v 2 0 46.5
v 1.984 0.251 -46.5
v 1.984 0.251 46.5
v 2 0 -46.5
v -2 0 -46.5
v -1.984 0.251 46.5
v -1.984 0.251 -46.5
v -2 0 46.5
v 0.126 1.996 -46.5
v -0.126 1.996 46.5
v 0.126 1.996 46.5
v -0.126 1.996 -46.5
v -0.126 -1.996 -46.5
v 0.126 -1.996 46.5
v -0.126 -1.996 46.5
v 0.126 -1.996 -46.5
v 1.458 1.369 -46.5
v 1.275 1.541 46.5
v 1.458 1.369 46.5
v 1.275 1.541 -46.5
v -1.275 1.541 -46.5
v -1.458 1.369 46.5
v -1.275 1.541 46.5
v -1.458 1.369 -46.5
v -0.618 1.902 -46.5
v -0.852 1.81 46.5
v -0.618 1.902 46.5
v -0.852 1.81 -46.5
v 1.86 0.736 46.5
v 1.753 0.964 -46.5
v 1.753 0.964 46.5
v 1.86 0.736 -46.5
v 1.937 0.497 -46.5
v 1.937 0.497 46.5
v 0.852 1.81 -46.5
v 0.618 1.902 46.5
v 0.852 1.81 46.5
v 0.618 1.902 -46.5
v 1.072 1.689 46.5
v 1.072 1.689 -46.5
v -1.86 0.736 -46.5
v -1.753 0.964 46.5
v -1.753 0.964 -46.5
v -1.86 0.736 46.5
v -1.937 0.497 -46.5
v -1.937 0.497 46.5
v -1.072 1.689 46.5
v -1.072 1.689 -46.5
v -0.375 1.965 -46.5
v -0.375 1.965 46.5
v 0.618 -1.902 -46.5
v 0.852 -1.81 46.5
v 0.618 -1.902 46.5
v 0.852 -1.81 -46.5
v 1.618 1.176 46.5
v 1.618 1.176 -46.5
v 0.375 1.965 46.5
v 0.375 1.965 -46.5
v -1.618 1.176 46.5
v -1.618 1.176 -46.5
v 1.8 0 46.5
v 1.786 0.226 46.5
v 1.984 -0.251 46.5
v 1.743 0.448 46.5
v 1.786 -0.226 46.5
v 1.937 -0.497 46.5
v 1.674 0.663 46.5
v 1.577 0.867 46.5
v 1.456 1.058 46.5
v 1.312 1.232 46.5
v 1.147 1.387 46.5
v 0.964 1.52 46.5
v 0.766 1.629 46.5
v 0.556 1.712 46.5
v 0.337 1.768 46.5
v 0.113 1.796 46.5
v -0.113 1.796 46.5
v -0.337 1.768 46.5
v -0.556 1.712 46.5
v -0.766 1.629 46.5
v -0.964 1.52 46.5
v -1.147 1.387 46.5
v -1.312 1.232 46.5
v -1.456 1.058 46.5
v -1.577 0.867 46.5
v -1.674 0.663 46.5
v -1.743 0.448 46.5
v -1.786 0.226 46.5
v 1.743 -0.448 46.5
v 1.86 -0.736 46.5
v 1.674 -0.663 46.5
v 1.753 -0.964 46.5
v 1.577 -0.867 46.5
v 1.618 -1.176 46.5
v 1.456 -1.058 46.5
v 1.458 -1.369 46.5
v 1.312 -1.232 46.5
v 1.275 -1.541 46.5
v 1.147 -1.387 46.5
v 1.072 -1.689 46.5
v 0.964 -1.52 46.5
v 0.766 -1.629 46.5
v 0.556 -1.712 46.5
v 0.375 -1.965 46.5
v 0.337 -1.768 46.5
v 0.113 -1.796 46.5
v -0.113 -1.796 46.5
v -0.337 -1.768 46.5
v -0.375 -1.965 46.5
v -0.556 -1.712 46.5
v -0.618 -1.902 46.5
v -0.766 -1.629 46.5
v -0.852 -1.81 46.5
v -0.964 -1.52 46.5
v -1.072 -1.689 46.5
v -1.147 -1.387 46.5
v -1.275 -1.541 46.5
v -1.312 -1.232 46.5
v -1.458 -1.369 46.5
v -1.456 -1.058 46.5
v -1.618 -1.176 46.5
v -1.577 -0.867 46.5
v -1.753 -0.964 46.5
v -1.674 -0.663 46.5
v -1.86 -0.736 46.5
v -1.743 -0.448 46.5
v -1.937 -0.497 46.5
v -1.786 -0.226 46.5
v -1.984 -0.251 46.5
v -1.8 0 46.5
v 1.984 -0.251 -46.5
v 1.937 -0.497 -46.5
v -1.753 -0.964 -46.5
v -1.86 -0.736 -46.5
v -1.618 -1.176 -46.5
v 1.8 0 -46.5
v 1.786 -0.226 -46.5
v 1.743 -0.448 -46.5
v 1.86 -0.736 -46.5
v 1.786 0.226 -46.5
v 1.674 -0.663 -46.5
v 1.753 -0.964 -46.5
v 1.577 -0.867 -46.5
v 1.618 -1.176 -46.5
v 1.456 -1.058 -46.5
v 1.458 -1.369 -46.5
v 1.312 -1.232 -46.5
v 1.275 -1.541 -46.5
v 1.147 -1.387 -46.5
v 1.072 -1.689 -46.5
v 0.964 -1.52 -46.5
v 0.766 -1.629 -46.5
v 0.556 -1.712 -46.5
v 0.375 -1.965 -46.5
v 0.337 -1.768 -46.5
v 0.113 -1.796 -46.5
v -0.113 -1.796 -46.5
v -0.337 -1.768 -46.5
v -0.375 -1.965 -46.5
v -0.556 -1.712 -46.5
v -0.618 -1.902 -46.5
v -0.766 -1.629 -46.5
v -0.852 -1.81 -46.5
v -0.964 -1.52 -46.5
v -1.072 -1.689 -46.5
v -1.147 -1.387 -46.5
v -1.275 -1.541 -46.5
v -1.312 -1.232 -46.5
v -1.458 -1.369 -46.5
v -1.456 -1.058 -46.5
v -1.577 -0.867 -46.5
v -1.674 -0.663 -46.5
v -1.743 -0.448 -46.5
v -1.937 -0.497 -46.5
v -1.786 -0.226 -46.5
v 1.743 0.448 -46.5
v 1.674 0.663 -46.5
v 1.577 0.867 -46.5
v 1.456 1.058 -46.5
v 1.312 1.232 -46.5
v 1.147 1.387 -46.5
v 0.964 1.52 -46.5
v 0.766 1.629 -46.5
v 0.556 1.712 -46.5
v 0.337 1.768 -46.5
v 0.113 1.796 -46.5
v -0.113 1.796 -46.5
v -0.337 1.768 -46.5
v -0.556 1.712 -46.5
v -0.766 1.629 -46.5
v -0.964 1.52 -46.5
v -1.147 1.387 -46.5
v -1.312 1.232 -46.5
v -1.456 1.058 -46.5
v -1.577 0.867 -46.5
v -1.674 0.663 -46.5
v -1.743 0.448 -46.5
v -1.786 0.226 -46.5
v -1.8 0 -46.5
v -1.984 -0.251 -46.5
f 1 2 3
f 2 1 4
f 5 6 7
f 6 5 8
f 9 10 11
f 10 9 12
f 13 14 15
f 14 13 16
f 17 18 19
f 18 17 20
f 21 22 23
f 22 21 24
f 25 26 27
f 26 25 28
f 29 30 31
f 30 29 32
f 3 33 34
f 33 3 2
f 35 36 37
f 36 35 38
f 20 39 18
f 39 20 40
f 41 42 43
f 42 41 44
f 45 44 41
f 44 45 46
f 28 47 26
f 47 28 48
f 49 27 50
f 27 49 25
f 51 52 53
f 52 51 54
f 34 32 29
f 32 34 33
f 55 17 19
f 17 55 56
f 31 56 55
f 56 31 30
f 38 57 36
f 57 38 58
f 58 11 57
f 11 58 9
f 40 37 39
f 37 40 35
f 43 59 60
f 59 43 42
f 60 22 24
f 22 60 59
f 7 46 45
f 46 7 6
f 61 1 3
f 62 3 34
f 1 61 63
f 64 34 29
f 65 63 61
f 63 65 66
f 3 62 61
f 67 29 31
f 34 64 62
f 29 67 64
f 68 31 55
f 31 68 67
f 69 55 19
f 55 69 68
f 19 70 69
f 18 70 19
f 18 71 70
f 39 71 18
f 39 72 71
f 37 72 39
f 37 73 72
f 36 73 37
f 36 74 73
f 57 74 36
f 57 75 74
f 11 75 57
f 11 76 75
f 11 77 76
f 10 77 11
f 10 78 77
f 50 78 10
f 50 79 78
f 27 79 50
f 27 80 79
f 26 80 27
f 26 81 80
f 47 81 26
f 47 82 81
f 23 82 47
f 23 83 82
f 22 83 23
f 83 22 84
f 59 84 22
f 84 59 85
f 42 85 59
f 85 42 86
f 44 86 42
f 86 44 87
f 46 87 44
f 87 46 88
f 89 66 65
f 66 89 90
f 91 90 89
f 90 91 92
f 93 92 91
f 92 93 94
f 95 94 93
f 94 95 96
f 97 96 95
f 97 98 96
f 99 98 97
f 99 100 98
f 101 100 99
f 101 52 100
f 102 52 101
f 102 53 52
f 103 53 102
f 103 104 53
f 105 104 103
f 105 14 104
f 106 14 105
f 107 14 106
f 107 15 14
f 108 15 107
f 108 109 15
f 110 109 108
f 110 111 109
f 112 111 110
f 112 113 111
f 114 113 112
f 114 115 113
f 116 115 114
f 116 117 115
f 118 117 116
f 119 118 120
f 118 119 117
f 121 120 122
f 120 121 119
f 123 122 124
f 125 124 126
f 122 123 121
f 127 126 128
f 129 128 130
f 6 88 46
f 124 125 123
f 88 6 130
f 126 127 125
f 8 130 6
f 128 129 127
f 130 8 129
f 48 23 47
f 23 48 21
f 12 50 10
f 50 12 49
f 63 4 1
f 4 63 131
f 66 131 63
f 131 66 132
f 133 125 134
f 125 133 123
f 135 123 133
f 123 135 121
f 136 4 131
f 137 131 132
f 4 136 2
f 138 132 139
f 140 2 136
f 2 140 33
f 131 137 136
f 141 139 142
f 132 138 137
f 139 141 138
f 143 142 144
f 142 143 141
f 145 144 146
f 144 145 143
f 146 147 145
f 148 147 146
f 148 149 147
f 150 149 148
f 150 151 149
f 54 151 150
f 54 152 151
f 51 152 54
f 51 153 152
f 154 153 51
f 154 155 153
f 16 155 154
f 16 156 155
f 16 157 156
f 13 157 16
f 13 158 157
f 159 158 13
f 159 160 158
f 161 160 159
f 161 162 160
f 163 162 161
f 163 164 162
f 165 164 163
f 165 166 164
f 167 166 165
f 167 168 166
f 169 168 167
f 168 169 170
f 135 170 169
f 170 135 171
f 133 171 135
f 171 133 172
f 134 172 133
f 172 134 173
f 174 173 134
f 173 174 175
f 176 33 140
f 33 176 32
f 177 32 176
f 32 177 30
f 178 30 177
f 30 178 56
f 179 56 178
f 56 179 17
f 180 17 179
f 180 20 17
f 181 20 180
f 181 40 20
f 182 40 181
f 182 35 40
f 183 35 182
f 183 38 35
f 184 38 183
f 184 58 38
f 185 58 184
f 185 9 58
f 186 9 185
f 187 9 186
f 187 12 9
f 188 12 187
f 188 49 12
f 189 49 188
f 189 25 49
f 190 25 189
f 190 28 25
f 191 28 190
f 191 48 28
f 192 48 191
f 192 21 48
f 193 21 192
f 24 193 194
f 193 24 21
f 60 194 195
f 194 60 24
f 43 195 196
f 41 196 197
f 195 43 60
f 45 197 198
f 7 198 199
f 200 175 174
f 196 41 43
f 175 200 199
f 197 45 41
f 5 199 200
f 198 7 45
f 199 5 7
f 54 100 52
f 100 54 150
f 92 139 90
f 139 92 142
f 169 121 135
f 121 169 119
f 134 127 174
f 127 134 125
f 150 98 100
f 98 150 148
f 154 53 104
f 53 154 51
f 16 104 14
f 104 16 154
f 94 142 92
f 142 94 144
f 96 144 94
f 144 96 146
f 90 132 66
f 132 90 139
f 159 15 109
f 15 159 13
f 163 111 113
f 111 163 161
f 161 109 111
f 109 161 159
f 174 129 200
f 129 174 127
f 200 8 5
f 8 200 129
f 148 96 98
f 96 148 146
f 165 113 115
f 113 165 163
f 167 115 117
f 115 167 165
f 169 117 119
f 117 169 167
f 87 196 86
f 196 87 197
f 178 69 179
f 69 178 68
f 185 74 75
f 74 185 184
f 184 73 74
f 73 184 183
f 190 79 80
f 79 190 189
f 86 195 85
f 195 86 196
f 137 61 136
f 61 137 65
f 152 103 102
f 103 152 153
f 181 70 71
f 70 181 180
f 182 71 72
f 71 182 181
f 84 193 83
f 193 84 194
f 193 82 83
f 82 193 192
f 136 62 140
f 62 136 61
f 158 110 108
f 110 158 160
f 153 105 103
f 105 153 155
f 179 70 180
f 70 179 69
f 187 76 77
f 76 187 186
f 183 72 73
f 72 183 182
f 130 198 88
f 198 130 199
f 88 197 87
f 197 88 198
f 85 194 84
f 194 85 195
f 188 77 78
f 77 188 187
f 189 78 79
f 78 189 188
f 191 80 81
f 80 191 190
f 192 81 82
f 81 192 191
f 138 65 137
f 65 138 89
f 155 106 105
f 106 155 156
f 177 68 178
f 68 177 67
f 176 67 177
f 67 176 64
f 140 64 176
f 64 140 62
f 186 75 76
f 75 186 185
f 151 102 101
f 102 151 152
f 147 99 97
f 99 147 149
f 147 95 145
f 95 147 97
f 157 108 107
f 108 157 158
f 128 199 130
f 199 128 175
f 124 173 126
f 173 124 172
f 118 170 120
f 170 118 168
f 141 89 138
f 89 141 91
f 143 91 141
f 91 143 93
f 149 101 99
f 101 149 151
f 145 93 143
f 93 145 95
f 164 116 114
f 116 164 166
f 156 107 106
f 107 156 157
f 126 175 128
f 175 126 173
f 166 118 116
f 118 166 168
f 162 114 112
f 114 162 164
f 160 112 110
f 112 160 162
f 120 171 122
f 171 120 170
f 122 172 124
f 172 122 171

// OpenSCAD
$fn = 50;


difference() {
	union() {
		translate(v = [0, 0, -46.5000000000]) {
			cylinder(h = 93, r = 2.0000000000);
		}
	}
	union() {
		translate(v = [0, 0, -100.0000000000]) {
			cylinder(h = 200, r = 1.8000000000);
		}
	}
}
